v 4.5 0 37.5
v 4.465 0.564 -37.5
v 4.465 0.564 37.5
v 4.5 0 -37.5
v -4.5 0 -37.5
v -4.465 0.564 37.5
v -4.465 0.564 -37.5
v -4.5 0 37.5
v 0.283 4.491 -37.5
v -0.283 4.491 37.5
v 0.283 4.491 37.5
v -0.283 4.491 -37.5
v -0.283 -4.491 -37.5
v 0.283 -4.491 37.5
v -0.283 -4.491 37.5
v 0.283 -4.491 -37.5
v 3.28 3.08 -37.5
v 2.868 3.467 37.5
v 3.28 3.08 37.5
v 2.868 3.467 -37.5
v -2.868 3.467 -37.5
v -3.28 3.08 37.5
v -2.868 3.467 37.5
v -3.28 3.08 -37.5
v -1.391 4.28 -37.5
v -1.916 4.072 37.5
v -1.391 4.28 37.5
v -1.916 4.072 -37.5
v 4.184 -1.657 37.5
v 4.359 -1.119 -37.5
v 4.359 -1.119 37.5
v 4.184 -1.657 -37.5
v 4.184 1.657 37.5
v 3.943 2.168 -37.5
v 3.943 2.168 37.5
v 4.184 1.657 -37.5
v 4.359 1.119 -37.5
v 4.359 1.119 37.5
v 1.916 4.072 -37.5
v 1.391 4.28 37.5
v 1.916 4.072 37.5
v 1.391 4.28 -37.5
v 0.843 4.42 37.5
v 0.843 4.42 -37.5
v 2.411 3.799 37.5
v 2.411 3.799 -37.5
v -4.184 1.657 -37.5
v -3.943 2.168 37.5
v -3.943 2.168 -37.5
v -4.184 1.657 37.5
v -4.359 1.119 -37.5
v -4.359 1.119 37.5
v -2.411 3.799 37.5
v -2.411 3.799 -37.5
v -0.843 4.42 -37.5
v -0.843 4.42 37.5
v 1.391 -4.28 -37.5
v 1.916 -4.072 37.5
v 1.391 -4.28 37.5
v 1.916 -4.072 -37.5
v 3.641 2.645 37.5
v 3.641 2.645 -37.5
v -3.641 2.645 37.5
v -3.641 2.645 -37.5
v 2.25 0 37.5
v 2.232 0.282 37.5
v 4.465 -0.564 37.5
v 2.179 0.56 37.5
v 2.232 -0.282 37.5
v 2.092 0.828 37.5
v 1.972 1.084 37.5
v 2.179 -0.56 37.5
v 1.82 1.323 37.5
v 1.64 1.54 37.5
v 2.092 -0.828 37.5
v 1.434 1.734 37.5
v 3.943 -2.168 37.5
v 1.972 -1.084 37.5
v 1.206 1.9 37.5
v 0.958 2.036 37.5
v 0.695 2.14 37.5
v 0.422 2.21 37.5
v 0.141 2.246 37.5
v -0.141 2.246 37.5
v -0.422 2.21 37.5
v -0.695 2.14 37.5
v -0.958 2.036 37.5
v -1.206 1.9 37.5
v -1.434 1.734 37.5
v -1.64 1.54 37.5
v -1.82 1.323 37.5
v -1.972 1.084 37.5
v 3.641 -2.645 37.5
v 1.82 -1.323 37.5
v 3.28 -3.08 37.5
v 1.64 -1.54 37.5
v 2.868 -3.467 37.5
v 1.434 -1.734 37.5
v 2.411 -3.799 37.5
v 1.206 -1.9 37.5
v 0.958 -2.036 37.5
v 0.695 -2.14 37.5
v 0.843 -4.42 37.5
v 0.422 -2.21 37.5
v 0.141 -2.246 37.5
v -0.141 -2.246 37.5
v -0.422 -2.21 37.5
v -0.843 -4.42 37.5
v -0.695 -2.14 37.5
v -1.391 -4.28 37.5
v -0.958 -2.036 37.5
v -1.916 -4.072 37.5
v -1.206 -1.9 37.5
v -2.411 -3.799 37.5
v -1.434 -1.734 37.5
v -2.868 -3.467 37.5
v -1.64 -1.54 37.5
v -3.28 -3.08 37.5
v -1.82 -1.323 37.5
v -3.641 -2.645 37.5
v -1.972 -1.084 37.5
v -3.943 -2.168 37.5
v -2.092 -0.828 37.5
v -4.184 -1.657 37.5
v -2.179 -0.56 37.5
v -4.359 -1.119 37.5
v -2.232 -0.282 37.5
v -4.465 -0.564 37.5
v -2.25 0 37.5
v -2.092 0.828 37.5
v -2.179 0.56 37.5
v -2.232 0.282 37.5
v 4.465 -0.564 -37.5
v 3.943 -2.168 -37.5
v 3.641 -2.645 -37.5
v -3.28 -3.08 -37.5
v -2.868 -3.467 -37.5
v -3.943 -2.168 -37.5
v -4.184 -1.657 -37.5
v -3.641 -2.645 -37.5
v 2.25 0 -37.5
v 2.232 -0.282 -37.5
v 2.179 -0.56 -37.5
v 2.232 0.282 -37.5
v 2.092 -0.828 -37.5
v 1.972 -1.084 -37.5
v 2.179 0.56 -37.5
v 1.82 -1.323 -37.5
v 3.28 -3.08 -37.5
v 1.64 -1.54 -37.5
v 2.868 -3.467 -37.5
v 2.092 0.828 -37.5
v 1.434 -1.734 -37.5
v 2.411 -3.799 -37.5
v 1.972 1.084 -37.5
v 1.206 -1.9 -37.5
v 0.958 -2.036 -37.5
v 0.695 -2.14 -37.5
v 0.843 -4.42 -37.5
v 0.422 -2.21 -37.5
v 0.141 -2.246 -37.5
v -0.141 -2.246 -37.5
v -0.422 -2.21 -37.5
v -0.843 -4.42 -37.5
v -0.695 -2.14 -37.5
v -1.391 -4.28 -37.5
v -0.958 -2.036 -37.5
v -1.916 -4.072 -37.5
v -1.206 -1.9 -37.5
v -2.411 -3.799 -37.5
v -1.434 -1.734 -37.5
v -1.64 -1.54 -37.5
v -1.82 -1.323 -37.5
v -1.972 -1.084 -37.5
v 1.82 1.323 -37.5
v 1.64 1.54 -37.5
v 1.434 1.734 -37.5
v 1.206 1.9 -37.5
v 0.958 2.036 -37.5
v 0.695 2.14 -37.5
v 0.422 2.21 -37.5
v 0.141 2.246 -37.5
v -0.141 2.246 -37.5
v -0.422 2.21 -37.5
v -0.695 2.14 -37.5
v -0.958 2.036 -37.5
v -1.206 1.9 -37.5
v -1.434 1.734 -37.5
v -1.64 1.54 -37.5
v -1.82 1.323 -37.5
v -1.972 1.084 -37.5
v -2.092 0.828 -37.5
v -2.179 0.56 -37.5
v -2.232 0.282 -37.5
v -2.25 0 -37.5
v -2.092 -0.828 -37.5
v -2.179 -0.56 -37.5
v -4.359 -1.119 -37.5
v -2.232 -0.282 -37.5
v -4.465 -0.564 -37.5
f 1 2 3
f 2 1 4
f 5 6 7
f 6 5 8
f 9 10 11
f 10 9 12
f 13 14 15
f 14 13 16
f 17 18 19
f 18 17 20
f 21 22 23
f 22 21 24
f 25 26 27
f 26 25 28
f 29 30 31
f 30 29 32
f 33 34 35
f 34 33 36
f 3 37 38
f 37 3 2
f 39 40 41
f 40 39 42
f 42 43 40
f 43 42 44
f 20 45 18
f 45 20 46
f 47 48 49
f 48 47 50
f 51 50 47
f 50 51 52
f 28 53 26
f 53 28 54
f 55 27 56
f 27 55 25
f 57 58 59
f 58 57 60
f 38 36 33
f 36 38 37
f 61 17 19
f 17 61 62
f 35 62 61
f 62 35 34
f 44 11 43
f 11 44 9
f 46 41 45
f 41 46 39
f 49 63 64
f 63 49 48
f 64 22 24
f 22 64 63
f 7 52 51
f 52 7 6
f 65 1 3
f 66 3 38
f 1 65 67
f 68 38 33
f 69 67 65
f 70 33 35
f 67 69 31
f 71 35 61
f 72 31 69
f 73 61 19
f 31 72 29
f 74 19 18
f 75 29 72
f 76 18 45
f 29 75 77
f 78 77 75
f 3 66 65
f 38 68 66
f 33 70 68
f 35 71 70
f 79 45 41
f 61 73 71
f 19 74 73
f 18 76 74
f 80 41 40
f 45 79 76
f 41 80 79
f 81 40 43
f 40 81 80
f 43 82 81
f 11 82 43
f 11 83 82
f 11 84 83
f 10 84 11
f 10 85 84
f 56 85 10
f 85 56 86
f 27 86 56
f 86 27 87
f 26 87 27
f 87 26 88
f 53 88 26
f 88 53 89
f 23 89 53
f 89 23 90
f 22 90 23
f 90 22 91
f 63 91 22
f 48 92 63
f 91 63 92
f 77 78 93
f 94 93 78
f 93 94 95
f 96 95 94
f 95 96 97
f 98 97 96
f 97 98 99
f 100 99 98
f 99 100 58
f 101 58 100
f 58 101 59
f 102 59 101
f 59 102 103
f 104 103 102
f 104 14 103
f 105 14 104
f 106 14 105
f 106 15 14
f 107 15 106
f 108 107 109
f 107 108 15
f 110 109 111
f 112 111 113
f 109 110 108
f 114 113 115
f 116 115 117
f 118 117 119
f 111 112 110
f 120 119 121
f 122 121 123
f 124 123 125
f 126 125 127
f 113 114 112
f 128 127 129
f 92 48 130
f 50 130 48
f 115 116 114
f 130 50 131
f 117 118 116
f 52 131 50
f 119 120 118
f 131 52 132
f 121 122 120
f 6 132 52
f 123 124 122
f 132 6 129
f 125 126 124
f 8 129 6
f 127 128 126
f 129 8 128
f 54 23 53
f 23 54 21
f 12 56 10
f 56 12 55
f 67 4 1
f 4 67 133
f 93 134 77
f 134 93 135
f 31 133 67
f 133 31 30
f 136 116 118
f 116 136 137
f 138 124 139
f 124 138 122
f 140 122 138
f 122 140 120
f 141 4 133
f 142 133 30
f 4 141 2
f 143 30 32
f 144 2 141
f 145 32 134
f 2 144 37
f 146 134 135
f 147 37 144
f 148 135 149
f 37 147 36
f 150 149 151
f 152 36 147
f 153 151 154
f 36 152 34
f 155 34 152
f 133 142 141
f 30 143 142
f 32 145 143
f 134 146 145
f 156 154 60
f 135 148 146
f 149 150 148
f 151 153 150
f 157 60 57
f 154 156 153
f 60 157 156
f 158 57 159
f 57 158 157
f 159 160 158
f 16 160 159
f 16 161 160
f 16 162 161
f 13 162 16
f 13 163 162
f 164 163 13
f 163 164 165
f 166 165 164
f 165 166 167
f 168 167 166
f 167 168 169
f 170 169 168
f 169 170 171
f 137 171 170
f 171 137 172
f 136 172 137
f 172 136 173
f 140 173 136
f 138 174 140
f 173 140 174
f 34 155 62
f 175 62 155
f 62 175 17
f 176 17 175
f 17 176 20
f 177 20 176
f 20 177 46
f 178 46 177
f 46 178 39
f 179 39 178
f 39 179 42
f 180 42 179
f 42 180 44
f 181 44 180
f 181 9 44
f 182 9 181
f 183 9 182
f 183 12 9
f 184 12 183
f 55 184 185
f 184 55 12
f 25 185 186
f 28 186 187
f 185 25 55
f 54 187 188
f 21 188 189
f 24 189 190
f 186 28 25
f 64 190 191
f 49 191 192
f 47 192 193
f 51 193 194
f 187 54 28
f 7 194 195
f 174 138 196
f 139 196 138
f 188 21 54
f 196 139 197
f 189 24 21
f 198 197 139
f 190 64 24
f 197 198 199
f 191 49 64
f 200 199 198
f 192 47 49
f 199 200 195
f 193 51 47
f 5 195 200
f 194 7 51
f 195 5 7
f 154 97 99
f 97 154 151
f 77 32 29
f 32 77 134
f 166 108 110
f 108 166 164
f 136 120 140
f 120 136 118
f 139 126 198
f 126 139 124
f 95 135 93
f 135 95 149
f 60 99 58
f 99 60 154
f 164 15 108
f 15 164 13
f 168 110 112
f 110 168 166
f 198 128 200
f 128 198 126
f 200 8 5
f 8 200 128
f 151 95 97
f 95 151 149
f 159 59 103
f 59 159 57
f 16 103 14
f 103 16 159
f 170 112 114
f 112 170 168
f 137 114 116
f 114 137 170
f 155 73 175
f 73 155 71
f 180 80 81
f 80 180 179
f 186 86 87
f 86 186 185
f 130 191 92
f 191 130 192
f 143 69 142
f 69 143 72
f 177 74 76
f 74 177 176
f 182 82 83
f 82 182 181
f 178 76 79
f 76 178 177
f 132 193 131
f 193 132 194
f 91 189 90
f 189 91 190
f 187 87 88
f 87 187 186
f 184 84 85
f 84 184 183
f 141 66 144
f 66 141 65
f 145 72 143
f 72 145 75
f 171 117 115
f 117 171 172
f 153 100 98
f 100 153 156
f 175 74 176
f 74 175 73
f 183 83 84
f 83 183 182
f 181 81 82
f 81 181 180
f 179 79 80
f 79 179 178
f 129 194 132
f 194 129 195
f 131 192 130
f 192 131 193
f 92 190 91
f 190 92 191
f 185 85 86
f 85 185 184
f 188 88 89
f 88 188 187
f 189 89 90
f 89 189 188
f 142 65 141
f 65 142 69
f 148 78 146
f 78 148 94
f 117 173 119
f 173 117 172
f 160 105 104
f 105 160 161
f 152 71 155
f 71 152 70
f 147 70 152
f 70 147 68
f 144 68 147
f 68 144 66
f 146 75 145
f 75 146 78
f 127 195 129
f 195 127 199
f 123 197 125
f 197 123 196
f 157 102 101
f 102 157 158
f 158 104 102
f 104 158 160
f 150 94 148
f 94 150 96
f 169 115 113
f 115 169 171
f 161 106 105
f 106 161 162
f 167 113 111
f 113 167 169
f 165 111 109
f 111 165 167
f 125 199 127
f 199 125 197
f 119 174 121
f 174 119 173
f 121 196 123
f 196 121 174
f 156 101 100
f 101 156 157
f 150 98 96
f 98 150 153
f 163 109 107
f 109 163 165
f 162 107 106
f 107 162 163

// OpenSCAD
$fn = 50;


difference() {
	union() {
		translate(v = [0, 0, -37.5000000000]) {
			cylinder(h = 75, r = 4.5000000000);
		}
	}
	union() {
		translate(v = [0, 0, -100.0000000000]) {
			cylinder(h = 200, r = 2.2500000000);
		}
	}
}
